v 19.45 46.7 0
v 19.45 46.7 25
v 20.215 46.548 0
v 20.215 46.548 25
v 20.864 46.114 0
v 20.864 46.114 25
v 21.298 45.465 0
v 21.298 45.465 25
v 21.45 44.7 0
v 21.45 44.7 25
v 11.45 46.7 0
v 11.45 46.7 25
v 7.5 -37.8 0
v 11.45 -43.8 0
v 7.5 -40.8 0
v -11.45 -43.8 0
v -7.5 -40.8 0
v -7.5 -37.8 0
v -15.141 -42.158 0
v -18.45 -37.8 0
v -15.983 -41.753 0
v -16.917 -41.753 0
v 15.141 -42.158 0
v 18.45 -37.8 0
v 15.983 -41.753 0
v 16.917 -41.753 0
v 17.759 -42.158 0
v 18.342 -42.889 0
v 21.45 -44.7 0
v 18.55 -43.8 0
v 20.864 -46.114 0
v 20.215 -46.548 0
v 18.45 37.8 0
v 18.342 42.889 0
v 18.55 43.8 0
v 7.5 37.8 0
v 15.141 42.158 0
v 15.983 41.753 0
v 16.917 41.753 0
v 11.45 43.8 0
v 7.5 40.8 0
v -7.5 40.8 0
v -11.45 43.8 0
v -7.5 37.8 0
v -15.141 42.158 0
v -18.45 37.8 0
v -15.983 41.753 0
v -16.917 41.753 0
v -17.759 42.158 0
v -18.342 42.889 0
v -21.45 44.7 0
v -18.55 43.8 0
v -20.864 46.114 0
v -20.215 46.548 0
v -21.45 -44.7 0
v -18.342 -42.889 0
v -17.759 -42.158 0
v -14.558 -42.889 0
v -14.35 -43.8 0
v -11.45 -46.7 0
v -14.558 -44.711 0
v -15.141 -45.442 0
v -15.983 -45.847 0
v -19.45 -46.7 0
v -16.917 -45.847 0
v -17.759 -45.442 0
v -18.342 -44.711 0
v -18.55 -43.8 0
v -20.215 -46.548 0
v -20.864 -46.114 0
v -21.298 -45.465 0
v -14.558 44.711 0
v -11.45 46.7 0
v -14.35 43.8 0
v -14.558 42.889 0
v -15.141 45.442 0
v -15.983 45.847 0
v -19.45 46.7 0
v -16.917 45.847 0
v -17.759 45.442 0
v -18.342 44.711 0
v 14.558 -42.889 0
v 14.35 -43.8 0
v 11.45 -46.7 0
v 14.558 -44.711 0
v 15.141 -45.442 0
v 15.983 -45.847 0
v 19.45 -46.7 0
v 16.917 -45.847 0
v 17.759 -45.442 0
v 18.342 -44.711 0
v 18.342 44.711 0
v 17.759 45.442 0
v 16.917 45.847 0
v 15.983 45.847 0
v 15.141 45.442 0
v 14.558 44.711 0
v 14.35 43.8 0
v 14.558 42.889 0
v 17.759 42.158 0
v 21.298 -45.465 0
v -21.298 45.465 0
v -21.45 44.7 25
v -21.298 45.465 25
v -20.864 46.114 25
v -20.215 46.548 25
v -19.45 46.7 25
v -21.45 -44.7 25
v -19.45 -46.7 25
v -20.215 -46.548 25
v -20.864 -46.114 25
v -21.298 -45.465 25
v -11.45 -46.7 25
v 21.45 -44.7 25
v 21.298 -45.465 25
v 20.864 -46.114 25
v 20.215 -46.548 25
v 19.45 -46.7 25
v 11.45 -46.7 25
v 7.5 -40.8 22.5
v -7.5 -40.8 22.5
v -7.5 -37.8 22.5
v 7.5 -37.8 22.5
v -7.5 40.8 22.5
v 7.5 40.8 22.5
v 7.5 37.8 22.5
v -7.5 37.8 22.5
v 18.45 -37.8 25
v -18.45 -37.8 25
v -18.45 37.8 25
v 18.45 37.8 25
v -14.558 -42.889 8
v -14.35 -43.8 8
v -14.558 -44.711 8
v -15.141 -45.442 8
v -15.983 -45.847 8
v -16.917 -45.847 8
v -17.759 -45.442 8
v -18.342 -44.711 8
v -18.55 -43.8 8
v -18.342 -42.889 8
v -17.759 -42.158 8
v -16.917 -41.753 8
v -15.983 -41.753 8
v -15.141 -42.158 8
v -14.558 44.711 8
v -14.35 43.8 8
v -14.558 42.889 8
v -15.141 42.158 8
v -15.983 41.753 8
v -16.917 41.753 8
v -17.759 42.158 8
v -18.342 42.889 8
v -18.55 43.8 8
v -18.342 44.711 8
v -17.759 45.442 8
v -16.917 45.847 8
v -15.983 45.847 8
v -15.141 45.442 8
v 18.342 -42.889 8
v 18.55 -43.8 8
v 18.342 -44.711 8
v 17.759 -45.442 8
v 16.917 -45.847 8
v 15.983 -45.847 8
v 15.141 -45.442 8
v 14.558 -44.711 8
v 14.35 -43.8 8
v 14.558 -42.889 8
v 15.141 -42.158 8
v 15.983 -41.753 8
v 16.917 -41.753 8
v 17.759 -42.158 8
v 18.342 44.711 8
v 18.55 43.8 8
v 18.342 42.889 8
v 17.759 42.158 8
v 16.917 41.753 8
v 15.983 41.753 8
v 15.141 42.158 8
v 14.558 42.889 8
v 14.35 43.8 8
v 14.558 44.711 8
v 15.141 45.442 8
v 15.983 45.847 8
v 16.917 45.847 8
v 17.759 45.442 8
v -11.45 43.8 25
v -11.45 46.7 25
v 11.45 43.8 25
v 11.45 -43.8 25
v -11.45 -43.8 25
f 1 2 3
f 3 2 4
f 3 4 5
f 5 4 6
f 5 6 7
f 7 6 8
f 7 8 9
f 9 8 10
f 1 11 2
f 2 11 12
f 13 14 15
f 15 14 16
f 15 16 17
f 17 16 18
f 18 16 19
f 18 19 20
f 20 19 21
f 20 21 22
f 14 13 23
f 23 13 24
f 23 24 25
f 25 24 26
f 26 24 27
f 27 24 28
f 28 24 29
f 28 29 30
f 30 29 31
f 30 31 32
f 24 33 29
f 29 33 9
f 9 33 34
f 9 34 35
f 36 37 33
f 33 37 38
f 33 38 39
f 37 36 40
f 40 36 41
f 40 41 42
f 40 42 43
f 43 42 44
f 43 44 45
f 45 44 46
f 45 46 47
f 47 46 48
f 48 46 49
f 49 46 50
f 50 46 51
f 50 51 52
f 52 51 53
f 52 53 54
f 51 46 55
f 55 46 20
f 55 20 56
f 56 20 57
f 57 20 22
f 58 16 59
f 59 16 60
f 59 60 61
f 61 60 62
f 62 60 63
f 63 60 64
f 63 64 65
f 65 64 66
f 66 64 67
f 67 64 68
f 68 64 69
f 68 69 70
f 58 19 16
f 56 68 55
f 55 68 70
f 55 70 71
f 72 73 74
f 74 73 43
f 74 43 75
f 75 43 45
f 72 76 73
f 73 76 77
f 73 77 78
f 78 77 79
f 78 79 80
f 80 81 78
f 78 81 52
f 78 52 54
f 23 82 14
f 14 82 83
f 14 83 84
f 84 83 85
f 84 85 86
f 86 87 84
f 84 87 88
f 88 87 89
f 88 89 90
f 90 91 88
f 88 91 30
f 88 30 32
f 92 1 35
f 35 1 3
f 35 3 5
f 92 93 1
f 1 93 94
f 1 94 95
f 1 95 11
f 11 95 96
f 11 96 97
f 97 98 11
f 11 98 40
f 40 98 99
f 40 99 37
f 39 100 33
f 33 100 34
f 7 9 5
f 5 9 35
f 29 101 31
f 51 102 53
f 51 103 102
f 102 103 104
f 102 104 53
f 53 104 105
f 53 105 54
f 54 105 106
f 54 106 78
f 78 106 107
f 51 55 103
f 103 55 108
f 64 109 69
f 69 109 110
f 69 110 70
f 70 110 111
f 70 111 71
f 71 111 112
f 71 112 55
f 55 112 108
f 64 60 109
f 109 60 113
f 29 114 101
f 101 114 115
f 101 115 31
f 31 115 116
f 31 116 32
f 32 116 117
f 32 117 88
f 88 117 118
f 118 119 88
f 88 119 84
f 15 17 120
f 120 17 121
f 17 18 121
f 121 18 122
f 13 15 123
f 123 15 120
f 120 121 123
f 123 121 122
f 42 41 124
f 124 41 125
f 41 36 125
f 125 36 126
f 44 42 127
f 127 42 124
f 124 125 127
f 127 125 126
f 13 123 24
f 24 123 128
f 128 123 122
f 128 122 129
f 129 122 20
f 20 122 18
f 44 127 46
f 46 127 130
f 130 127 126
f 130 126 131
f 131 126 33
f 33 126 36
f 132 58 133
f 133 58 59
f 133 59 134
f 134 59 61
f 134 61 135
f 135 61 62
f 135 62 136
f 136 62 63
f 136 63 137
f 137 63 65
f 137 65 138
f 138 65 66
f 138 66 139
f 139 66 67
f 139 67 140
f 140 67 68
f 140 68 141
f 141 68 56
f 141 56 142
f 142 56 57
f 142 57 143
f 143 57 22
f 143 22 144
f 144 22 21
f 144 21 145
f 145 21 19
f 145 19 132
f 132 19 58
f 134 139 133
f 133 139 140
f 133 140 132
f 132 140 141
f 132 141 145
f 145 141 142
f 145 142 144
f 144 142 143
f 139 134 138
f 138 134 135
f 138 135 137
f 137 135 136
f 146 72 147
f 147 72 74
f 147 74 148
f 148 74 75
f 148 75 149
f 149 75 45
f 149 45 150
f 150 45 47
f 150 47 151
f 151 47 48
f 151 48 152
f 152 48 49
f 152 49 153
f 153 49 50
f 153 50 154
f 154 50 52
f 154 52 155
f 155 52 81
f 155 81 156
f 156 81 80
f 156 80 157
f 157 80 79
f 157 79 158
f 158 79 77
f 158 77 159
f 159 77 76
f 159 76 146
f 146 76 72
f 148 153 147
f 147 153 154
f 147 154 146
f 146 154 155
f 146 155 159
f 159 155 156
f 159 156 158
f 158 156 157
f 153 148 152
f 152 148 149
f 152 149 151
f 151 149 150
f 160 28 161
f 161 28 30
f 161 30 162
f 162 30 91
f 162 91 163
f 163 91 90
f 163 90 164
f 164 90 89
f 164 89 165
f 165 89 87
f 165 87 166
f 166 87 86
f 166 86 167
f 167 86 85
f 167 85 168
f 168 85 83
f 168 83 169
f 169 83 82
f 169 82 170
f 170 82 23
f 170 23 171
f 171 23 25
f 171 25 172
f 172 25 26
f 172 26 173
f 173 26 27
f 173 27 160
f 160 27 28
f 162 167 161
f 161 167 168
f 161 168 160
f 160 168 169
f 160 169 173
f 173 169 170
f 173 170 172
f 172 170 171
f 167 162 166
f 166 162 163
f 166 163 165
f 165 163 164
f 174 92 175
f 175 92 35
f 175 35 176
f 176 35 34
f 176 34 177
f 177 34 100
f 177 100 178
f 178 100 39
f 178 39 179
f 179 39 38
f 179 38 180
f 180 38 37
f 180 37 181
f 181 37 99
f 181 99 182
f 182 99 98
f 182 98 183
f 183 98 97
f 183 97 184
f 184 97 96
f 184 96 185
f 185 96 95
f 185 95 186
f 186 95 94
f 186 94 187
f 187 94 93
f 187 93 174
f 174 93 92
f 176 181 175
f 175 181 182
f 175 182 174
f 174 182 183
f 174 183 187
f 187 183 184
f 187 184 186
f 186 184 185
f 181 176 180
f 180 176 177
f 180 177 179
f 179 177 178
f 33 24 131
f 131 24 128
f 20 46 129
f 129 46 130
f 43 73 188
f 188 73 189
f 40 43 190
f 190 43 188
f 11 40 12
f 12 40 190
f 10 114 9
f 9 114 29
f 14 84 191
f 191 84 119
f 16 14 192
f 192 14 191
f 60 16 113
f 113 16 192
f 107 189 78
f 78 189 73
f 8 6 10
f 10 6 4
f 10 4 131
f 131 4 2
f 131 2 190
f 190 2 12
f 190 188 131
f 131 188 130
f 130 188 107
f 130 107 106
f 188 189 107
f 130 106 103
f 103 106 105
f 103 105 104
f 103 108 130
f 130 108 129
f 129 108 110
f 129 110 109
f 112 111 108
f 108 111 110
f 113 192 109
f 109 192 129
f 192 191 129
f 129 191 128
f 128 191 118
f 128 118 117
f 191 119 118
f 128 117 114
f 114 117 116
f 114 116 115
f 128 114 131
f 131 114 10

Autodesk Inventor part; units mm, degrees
ref_plane "YZ Plane" through (0, 0, 0) normal (1, 0, 0) x (0, 1, 0)
ref_plane "XZ Plane" through (0, 0, 0) normal (0, 1, 0) x (-1, 0, 0)
ref_plane "XY Plane" through (0, 0, 0) normal (0, 0, 1) x (1, 0, 0)
sketch "Эскиз1" plane through (0, 0, 0) normal (0, 0, 1) x (1, 0, 0)
  line L0 (-18.25, -37.6) -> (18.25, -37.6)
  line L1 (18.25, -37.6) -> (18.25, 37.6)
  line L2 (18.25, 37.6) -> (-18.25, 37.6)
  line L3 (-18.25, 37.6) -> (-18.25, -37.6)
  line L4 (-18.25, 0) -> (18.25, 0) construction
  line L5 (0, 37.6) -> (0, -37.6) construction
  line L6 (-18.45, -37.8) -> (18.45, -37.8)
  line L7 (18.45, -37.8) -> (18.45, 37.8)
  line L8 (18.45, 37.8) -> (-18.45, 37.8)
  line L9 (-18.45, 37.8) -> (-18.45, -37.8)
  line L10 (-7.5, -37.8) -> (7.5, -37.8)
  line L11 (7.5, -37.8) -> (7.5, -40.8)
  line L12 (7.5, -40.8) -> (-7.5, -40.8)
  line L13 (-7.5, -40.8) -> (-7.5, -37.8)
  line L14 (-18.45, -37.8) -> (-18.45, -43.8)
  line L15 (-18.45, -43.8) -> (18.45, -43.8)
  line L16 (18.45, -43.8) -> (18.45, -37.8)
  line L17 (-18.45, 37.8) -> (-18.45, 43.8)
  line L18 (-18.45, 43.8) -> (18.45, 43.8)
  line L19 (18.45, 43.8) -> (18.45, 37.8)
  line L20 (-18.45, -43.8) -> (-21.45, -43.8)
  line L21 (-21.45, -43.8) -> (-21.45, 43.8)
  line L22 (-21.45, 43.8) -> (-18.45, 43.8)
  line L23 (-18.45, 43.8) -> (-18.45, -43.8)
  line L24 (18.45, 37.8) -> (18.45, 43.8)
  line L25 (21.45, -43.8) -> (21.45, 43.8)
  line L26 (21.45, 43.8) -> (18.45, 43.8)
  line L27 (18.45, 43.8) -> (18.45, -43.8)
  line L28 (7.5, 37.8) -> (7.5, 40.8)
  line L29 (7.5, 40.8) -> (-7.5, 40.8)
  line L30 (-7.5, 40.8) -> (-7.5, 37.8)
  line L31 (-21.45, -43.8) -> (-11.45, -43.8)
  line L32 (18.45, -43.8) -> (21.45, -43.8)
  line L33 (21.45, -43.8) -> (11.45, -43.8)
  line L34 (16.45, 46.7) -> (21.45, 46.7)
  line L35 (16.45, 46.7) -> (11.45, 46.7)
  line L36 (11.45, 46.7) -> (11.45, 43.8)
  line L37 (21.45, 46.7) -> (21.45, 43.8)
  line L38 (11.45, 43.8) -> (16.45, 43.8)
  circle A0 centre (16.45, 43.8) radius 2.1
  line L39 (-16.45, 46.7) -> (-21.45, 46.7)
  line L40 (-16.45, 46.7) -> (-11.45, 46.7)
  line L41 (-11.45, 46.7) -> (-11.45, 43.8)
  line L42 (-21.45, 46.7) -> (-21.45, 43.8)
  circle A1 centre (-16.45, 43.8) radius 2.1
  line L43 (16.45, -46.7) -> (21.45, -46.7)
  line L44 (16.45, -46.7) -> (11.45, -46.7)
  line L45 (11.45, -46.7) -> (11.45, -43.8)
  line L46 (21.45, -46.7) -> (21.45, -43.8)
  circle A2 centre (16.45, -43.8) radius 2.1
  line L47 (-11.45, -46.7) -> (-11.45, -43.8)
  line L48 (-16.45, -46.7) -> (-11.45, -46.7)
  line L49 (-16.45, -46.7) -> (-21.45, -46.7)
  line L50 (-21.45, -46.7) -> (-21.45, -43.8)
  circle A3 centre (-16.45, -43.8) radius 2.1
  point P0 (0, 0)
  point P1 (0, 0)
  point P2 (-1.9914, -32.8601)
  point P3 (0, -37.8)
  dimension "d0" = 36.5
  dimension "d1" = 75.2
  dimension "d4" = 36.9
  dimension "d5" = 75.6
  dimension "d6" = 15
  dimension "d7" = 3
  dimension "d9" = 6
  dimension "d10" = 3
  dimension "d18" = 5
  dimension "d19" = 4.2
extrude "Выдавливание1" add sketch "Эскиз1" along normal blind 25 contours L14 A3 L20 L21 L22 A1 L17 L9 | L6 L13 L12 L11 L16 A2 L15 A3 L14 | L6 L11 L12 L13 | L17 A1 L18 A0 L19 L8 L28 L29 L30 | A3 L15 L14 | L14 L20 A3 | L30 L29 L28 L8 | A1 L22 L17 | L17 L18 A1 | L15 A3 L20 | L15 L47 L48 L49 L50 L20 A3 | L7 L19 A0 L26 L25 L32 A2 L16 | L22 A1 L18 | L22 L42 L39 L40 L41 L18 A1 | A2 L32 L16 | L16 L15 A2 | L15 A2 L32 L46 L43 L44 L45 | A0 L18 L19 | L19 L26 A0 | L32 A2 L15 | L36 L35 L34 L37 L26 A0 L18 | L18 A0 L26
extrude "Выдавливание2" cut sketch "Эскиз1" along normal blind 8 contours A3 L15 L14 | L14 L20 A3 | A1 L22 L17 | L17 L18 A1 | L15 A3 L20 | L22 A1 L18 | A2 L32 L16 | L16 L15 A2 | A0 L18 L19 | L19 L26 A0 | L32 A2 L15 | L18 A0 L26
extrude "Выдавливание3" cut sketch "Эскиз1" along normal blind 22.5 contours L6 L11 L12 L13 | L30 L29 L28 L8
fillet "Сопряжение1" radius 2 4 edges at (21.45, -46.7, 12.5) (-21.45, -46.7, 12.5) (-21.45, 46.7, 12.5) (21.45, 46.7, 12.5)
properties part number "fast_akkum"
